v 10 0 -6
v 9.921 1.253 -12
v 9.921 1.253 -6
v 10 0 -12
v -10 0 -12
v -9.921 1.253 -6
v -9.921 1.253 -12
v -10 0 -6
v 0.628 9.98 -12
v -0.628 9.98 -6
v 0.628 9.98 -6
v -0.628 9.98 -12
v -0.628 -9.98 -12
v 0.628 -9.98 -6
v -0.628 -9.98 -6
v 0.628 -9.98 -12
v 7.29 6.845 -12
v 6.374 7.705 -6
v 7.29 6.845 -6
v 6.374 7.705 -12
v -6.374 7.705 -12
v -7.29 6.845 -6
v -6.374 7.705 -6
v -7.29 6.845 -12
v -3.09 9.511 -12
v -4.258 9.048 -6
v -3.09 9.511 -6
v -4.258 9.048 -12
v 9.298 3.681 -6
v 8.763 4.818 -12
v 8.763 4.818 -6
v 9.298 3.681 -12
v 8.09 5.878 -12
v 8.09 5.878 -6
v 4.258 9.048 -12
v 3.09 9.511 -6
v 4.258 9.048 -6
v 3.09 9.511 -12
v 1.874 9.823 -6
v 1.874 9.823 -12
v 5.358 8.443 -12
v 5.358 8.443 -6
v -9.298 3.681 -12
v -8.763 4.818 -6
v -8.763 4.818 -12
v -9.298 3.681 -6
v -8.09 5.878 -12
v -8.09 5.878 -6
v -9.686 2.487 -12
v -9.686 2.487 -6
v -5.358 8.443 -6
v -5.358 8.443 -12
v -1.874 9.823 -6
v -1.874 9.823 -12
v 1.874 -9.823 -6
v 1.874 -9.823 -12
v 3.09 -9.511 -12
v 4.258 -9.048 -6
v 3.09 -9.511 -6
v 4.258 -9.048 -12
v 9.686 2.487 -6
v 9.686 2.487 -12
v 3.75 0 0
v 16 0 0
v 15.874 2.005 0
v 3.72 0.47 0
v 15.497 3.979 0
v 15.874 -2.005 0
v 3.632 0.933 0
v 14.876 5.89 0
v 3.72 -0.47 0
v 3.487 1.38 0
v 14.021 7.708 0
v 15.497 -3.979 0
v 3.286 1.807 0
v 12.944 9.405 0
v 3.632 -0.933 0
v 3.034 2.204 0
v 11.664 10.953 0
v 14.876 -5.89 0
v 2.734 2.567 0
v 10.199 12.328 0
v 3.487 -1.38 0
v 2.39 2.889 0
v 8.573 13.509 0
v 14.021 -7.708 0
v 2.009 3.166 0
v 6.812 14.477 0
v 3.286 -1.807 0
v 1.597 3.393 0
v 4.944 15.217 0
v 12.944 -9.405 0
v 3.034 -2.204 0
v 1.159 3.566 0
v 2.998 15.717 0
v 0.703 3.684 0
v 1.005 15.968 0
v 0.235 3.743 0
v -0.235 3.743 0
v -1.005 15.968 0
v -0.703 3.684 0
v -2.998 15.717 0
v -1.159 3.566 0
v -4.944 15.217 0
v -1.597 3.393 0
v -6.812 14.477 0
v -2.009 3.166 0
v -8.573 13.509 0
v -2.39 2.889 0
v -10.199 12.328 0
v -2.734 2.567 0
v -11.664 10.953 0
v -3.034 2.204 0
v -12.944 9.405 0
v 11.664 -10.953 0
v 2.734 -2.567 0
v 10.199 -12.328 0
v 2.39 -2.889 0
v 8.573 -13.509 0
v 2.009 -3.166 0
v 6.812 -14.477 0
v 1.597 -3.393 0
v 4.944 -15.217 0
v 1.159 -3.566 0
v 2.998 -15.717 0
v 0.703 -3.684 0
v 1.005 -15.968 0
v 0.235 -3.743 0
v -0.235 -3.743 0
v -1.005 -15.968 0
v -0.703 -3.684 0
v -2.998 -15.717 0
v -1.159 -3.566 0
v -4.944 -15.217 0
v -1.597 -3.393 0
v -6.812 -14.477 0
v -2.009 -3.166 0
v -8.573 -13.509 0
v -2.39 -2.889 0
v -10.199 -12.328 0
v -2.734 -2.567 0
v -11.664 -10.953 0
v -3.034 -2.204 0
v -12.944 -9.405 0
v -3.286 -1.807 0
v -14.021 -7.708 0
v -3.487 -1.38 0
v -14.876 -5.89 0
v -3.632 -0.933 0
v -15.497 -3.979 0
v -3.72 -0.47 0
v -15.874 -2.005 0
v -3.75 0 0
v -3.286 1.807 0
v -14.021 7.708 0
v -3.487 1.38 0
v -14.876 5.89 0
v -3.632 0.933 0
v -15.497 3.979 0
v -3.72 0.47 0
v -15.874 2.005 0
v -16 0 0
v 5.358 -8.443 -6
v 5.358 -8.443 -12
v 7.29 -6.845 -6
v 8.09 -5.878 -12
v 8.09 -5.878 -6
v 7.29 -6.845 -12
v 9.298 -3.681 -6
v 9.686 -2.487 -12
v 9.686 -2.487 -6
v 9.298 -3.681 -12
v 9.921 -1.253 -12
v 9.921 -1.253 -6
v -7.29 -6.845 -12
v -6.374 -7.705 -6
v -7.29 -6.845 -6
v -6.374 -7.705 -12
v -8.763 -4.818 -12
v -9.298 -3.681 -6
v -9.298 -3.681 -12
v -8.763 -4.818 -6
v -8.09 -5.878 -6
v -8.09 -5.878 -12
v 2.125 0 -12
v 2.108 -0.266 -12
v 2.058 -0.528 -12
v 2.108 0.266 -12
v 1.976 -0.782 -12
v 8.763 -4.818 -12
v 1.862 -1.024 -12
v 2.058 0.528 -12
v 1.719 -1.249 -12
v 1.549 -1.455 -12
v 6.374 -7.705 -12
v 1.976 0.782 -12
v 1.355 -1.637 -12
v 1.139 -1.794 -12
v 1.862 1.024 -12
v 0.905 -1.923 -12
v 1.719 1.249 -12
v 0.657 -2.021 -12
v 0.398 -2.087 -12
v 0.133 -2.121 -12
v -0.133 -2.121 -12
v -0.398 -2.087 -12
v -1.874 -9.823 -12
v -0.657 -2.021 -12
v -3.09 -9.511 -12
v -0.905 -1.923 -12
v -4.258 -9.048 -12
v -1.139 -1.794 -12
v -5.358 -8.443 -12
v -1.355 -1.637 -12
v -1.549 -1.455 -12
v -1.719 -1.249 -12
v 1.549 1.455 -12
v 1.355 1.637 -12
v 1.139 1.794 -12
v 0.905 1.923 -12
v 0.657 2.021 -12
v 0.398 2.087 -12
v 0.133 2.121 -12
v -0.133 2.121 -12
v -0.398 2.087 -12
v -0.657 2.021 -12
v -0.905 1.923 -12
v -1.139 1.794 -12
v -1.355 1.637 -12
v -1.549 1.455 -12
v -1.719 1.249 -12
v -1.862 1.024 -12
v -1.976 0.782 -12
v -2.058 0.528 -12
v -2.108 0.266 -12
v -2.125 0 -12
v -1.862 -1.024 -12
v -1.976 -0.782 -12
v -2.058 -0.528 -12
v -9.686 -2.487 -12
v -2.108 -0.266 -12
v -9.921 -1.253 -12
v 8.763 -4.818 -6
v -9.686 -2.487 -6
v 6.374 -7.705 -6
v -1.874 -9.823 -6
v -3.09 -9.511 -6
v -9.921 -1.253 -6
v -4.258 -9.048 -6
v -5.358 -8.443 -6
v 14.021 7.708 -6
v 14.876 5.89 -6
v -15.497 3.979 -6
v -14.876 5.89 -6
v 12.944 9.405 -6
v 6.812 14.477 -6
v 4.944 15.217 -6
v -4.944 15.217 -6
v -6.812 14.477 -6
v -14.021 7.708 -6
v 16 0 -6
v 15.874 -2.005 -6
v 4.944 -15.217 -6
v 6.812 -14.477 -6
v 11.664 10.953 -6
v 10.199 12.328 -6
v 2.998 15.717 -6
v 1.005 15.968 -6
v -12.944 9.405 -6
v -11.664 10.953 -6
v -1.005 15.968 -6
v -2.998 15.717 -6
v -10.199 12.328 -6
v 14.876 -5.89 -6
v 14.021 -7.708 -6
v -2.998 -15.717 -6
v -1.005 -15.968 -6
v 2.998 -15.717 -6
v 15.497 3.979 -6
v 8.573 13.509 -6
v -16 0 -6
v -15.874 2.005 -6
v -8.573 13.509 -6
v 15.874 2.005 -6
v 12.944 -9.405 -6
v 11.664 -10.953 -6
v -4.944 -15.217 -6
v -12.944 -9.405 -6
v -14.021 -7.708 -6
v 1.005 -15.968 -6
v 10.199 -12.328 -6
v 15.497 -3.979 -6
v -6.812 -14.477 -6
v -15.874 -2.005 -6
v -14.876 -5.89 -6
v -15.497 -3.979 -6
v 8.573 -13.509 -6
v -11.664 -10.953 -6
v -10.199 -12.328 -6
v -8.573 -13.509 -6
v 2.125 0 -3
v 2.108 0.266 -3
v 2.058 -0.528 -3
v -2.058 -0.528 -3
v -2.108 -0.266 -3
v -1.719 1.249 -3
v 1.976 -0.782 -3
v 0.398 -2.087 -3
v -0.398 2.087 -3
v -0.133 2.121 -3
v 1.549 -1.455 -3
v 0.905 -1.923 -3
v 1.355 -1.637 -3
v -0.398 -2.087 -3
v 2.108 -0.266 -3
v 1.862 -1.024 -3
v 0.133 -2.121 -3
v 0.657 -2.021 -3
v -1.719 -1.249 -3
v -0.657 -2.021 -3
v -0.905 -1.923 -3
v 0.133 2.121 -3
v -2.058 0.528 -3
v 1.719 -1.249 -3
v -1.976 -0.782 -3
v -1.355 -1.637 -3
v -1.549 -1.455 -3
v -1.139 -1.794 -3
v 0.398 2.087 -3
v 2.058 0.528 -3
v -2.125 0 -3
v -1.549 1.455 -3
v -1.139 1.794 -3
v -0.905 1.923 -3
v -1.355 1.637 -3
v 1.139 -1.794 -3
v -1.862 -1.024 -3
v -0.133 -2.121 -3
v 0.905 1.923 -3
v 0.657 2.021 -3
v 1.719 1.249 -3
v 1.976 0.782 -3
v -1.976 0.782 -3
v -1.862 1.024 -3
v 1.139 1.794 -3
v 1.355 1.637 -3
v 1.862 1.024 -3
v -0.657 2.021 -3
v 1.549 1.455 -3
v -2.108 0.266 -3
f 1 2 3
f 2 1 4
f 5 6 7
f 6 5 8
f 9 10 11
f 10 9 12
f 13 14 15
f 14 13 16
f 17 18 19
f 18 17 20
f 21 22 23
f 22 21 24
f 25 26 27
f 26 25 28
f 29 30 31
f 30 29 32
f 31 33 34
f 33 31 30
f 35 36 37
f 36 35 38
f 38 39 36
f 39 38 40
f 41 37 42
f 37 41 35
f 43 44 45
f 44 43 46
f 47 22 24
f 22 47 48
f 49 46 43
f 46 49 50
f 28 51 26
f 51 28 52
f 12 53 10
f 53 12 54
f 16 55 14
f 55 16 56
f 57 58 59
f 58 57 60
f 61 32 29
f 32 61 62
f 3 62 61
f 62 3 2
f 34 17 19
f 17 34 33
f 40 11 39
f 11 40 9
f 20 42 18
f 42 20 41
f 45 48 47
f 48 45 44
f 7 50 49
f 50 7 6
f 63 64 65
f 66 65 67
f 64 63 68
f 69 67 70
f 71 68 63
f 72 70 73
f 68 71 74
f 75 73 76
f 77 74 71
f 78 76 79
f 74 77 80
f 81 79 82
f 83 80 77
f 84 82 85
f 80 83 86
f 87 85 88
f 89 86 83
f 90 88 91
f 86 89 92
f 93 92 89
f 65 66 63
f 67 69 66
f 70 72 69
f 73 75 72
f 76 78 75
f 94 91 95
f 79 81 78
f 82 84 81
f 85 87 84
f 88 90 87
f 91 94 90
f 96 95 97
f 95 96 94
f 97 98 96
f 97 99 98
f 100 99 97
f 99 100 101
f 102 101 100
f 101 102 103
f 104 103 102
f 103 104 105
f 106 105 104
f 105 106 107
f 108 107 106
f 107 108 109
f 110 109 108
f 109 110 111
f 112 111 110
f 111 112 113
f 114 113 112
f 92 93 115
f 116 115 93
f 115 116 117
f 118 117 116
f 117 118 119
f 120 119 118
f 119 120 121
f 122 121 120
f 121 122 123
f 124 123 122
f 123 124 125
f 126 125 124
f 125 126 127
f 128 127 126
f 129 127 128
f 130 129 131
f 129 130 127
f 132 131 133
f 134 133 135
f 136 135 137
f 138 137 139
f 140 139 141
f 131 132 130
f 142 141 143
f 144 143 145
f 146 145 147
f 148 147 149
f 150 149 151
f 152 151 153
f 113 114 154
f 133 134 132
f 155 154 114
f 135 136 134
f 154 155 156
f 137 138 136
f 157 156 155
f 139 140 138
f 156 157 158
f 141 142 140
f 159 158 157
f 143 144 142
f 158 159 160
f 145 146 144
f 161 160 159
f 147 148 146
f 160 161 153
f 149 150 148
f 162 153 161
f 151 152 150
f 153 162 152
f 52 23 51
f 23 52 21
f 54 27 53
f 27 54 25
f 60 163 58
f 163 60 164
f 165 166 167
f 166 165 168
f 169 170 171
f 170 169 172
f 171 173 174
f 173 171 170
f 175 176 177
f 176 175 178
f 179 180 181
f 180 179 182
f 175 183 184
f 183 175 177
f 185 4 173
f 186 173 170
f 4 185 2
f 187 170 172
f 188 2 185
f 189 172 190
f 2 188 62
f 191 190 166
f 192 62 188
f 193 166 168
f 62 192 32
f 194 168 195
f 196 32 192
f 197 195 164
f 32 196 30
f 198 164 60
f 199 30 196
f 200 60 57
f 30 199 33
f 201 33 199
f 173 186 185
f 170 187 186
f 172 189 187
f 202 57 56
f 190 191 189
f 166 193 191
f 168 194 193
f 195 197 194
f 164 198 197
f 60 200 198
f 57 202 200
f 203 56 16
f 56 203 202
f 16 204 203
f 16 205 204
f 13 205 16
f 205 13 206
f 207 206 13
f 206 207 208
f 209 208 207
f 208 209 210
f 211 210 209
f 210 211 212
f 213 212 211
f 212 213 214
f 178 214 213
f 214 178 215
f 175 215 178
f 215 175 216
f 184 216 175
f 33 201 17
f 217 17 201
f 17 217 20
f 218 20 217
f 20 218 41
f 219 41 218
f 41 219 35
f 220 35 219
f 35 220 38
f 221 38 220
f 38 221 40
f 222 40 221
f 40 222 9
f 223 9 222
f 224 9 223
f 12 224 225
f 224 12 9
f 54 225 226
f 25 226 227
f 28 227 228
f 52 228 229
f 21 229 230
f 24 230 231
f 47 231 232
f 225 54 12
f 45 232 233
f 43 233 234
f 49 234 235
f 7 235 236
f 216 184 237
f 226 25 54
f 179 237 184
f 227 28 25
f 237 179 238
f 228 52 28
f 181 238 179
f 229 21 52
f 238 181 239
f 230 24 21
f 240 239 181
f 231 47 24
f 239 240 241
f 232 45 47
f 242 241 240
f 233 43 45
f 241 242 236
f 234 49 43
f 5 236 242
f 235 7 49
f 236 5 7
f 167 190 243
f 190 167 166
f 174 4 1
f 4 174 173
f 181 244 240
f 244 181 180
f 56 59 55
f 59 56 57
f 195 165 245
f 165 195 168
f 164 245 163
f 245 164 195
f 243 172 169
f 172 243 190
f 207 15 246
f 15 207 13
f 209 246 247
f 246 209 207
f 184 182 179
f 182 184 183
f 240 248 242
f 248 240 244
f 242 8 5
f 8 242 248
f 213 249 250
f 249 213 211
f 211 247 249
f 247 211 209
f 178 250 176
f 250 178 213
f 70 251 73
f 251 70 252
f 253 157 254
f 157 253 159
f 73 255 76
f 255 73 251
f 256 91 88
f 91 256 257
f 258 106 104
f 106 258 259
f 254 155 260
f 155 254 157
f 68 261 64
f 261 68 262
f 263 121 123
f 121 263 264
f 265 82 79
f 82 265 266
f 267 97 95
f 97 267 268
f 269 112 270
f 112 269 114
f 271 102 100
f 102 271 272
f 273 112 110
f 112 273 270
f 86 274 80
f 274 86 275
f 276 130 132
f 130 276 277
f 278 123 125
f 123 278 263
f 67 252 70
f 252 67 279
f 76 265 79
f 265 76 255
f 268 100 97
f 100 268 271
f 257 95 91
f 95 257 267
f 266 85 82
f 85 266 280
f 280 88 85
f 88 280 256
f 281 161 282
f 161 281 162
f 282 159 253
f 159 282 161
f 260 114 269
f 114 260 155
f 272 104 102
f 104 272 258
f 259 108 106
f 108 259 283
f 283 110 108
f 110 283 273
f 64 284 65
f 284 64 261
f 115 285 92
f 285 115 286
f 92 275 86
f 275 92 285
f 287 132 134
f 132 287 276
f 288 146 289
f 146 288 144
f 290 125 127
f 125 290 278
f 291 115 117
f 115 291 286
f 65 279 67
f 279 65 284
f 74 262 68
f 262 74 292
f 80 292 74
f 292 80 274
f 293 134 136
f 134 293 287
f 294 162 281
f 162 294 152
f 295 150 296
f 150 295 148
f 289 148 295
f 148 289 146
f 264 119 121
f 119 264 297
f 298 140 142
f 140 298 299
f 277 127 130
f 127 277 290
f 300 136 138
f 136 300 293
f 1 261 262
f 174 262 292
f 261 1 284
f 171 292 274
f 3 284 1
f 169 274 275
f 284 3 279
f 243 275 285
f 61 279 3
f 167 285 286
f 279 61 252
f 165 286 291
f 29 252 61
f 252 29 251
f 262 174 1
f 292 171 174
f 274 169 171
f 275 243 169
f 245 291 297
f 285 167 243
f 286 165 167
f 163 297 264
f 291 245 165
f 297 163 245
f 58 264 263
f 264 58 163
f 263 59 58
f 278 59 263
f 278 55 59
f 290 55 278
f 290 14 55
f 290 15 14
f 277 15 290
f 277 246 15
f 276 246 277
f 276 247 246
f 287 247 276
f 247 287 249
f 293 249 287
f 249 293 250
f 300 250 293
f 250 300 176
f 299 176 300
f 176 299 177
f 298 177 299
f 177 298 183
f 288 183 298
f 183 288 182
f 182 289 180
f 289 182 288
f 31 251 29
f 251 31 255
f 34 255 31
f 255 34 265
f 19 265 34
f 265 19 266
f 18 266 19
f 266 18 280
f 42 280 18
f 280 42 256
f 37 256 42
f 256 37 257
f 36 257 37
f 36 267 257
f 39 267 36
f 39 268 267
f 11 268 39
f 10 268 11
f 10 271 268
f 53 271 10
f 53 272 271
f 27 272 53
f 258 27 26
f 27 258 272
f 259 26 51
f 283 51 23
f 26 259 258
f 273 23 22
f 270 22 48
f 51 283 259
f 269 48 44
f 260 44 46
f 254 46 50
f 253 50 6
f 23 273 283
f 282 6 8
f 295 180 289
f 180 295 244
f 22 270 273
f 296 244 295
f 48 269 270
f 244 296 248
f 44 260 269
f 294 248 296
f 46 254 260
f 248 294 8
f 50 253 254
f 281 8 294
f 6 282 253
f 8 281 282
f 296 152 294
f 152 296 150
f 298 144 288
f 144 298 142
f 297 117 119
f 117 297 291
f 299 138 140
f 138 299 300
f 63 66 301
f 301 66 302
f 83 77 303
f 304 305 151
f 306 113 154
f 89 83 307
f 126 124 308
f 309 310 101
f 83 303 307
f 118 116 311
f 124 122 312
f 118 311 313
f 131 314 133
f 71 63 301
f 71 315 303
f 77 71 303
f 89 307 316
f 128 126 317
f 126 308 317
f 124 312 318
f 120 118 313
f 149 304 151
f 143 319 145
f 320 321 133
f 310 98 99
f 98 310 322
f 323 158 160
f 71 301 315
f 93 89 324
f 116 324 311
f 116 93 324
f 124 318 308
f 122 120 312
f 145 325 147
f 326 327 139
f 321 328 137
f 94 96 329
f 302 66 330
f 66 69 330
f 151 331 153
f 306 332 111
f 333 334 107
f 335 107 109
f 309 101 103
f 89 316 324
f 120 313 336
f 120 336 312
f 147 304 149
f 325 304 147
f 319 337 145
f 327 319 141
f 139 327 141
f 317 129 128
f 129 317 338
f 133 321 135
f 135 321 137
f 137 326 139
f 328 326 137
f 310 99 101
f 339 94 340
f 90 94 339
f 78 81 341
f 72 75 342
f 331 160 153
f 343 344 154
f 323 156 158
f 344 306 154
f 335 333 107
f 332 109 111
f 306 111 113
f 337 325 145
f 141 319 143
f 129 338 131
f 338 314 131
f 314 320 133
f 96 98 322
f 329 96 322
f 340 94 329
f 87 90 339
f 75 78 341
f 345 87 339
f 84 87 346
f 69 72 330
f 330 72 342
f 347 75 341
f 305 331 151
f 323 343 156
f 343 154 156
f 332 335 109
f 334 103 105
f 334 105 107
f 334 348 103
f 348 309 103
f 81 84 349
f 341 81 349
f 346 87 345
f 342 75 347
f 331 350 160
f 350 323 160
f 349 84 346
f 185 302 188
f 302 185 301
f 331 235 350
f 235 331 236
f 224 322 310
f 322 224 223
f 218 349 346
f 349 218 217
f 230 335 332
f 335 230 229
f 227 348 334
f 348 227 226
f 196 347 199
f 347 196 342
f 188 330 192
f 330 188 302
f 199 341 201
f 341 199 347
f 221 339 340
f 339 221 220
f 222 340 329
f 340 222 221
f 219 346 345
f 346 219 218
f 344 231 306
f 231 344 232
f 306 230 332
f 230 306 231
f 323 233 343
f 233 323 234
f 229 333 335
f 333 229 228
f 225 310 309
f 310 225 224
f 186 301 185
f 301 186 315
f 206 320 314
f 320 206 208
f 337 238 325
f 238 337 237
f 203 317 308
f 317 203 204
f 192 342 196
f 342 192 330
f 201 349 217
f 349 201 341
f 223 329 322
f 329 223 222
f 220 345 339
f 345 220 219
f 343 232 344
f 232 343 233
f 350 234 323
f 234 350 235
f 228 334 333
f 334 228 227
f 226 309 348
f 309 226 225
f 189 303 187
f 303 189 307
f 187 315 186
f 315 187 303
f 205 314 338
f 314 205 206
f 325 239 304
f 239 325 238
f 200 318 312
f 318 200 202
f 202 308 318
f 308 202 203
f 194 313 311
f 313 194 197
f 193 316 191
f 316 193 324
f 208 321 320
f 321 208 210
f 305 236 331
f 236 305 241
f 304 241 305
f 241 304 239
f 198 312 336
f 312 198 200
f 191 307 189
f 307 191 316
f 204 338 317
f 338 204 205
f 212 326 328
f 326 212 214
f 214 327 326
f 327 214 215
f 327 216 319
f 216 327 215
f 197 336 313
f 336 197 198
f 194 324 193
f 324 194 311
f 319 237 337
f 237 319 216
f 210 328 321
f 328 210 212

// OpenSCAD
$fn = 50;


difference() {
	union() {
		translate(v = [0, 0, -12.0000000000]) {
			cylinder(h = 12, r = 10.0000000000);
		}
		translate(v = [0, 0, -6.0000000000]) {
			cylinder(h = 6, r = 16.0000000000);
		}
	}
	union() {
		translate(v = [0, 0, 0]) {
			rotate(a = [0, 0, 0]) {
				difference() {
					union() {
						#translate(v = [0, 0, -12.0000000000]) {
							cylinder(h = 12, r = 2.0000000000);
						}
						#translate(v = [0, 0, -3]) {
							cylinder(h = 3, r = 10.0000000000, r1 = 2.1250000000, r2 = 3.7500000000);
						}
						#translate(v = [0, 0, -12.0000000000]) {
							cylinder(h = 12, r = 2.1250000000);
						}
						#translate(v = [0, 0, -12.0000000000]) {
							cylinder(h = 12, r = 2.0000000000);
						}
					}
					union();
				}
			}
		}
	}
}
